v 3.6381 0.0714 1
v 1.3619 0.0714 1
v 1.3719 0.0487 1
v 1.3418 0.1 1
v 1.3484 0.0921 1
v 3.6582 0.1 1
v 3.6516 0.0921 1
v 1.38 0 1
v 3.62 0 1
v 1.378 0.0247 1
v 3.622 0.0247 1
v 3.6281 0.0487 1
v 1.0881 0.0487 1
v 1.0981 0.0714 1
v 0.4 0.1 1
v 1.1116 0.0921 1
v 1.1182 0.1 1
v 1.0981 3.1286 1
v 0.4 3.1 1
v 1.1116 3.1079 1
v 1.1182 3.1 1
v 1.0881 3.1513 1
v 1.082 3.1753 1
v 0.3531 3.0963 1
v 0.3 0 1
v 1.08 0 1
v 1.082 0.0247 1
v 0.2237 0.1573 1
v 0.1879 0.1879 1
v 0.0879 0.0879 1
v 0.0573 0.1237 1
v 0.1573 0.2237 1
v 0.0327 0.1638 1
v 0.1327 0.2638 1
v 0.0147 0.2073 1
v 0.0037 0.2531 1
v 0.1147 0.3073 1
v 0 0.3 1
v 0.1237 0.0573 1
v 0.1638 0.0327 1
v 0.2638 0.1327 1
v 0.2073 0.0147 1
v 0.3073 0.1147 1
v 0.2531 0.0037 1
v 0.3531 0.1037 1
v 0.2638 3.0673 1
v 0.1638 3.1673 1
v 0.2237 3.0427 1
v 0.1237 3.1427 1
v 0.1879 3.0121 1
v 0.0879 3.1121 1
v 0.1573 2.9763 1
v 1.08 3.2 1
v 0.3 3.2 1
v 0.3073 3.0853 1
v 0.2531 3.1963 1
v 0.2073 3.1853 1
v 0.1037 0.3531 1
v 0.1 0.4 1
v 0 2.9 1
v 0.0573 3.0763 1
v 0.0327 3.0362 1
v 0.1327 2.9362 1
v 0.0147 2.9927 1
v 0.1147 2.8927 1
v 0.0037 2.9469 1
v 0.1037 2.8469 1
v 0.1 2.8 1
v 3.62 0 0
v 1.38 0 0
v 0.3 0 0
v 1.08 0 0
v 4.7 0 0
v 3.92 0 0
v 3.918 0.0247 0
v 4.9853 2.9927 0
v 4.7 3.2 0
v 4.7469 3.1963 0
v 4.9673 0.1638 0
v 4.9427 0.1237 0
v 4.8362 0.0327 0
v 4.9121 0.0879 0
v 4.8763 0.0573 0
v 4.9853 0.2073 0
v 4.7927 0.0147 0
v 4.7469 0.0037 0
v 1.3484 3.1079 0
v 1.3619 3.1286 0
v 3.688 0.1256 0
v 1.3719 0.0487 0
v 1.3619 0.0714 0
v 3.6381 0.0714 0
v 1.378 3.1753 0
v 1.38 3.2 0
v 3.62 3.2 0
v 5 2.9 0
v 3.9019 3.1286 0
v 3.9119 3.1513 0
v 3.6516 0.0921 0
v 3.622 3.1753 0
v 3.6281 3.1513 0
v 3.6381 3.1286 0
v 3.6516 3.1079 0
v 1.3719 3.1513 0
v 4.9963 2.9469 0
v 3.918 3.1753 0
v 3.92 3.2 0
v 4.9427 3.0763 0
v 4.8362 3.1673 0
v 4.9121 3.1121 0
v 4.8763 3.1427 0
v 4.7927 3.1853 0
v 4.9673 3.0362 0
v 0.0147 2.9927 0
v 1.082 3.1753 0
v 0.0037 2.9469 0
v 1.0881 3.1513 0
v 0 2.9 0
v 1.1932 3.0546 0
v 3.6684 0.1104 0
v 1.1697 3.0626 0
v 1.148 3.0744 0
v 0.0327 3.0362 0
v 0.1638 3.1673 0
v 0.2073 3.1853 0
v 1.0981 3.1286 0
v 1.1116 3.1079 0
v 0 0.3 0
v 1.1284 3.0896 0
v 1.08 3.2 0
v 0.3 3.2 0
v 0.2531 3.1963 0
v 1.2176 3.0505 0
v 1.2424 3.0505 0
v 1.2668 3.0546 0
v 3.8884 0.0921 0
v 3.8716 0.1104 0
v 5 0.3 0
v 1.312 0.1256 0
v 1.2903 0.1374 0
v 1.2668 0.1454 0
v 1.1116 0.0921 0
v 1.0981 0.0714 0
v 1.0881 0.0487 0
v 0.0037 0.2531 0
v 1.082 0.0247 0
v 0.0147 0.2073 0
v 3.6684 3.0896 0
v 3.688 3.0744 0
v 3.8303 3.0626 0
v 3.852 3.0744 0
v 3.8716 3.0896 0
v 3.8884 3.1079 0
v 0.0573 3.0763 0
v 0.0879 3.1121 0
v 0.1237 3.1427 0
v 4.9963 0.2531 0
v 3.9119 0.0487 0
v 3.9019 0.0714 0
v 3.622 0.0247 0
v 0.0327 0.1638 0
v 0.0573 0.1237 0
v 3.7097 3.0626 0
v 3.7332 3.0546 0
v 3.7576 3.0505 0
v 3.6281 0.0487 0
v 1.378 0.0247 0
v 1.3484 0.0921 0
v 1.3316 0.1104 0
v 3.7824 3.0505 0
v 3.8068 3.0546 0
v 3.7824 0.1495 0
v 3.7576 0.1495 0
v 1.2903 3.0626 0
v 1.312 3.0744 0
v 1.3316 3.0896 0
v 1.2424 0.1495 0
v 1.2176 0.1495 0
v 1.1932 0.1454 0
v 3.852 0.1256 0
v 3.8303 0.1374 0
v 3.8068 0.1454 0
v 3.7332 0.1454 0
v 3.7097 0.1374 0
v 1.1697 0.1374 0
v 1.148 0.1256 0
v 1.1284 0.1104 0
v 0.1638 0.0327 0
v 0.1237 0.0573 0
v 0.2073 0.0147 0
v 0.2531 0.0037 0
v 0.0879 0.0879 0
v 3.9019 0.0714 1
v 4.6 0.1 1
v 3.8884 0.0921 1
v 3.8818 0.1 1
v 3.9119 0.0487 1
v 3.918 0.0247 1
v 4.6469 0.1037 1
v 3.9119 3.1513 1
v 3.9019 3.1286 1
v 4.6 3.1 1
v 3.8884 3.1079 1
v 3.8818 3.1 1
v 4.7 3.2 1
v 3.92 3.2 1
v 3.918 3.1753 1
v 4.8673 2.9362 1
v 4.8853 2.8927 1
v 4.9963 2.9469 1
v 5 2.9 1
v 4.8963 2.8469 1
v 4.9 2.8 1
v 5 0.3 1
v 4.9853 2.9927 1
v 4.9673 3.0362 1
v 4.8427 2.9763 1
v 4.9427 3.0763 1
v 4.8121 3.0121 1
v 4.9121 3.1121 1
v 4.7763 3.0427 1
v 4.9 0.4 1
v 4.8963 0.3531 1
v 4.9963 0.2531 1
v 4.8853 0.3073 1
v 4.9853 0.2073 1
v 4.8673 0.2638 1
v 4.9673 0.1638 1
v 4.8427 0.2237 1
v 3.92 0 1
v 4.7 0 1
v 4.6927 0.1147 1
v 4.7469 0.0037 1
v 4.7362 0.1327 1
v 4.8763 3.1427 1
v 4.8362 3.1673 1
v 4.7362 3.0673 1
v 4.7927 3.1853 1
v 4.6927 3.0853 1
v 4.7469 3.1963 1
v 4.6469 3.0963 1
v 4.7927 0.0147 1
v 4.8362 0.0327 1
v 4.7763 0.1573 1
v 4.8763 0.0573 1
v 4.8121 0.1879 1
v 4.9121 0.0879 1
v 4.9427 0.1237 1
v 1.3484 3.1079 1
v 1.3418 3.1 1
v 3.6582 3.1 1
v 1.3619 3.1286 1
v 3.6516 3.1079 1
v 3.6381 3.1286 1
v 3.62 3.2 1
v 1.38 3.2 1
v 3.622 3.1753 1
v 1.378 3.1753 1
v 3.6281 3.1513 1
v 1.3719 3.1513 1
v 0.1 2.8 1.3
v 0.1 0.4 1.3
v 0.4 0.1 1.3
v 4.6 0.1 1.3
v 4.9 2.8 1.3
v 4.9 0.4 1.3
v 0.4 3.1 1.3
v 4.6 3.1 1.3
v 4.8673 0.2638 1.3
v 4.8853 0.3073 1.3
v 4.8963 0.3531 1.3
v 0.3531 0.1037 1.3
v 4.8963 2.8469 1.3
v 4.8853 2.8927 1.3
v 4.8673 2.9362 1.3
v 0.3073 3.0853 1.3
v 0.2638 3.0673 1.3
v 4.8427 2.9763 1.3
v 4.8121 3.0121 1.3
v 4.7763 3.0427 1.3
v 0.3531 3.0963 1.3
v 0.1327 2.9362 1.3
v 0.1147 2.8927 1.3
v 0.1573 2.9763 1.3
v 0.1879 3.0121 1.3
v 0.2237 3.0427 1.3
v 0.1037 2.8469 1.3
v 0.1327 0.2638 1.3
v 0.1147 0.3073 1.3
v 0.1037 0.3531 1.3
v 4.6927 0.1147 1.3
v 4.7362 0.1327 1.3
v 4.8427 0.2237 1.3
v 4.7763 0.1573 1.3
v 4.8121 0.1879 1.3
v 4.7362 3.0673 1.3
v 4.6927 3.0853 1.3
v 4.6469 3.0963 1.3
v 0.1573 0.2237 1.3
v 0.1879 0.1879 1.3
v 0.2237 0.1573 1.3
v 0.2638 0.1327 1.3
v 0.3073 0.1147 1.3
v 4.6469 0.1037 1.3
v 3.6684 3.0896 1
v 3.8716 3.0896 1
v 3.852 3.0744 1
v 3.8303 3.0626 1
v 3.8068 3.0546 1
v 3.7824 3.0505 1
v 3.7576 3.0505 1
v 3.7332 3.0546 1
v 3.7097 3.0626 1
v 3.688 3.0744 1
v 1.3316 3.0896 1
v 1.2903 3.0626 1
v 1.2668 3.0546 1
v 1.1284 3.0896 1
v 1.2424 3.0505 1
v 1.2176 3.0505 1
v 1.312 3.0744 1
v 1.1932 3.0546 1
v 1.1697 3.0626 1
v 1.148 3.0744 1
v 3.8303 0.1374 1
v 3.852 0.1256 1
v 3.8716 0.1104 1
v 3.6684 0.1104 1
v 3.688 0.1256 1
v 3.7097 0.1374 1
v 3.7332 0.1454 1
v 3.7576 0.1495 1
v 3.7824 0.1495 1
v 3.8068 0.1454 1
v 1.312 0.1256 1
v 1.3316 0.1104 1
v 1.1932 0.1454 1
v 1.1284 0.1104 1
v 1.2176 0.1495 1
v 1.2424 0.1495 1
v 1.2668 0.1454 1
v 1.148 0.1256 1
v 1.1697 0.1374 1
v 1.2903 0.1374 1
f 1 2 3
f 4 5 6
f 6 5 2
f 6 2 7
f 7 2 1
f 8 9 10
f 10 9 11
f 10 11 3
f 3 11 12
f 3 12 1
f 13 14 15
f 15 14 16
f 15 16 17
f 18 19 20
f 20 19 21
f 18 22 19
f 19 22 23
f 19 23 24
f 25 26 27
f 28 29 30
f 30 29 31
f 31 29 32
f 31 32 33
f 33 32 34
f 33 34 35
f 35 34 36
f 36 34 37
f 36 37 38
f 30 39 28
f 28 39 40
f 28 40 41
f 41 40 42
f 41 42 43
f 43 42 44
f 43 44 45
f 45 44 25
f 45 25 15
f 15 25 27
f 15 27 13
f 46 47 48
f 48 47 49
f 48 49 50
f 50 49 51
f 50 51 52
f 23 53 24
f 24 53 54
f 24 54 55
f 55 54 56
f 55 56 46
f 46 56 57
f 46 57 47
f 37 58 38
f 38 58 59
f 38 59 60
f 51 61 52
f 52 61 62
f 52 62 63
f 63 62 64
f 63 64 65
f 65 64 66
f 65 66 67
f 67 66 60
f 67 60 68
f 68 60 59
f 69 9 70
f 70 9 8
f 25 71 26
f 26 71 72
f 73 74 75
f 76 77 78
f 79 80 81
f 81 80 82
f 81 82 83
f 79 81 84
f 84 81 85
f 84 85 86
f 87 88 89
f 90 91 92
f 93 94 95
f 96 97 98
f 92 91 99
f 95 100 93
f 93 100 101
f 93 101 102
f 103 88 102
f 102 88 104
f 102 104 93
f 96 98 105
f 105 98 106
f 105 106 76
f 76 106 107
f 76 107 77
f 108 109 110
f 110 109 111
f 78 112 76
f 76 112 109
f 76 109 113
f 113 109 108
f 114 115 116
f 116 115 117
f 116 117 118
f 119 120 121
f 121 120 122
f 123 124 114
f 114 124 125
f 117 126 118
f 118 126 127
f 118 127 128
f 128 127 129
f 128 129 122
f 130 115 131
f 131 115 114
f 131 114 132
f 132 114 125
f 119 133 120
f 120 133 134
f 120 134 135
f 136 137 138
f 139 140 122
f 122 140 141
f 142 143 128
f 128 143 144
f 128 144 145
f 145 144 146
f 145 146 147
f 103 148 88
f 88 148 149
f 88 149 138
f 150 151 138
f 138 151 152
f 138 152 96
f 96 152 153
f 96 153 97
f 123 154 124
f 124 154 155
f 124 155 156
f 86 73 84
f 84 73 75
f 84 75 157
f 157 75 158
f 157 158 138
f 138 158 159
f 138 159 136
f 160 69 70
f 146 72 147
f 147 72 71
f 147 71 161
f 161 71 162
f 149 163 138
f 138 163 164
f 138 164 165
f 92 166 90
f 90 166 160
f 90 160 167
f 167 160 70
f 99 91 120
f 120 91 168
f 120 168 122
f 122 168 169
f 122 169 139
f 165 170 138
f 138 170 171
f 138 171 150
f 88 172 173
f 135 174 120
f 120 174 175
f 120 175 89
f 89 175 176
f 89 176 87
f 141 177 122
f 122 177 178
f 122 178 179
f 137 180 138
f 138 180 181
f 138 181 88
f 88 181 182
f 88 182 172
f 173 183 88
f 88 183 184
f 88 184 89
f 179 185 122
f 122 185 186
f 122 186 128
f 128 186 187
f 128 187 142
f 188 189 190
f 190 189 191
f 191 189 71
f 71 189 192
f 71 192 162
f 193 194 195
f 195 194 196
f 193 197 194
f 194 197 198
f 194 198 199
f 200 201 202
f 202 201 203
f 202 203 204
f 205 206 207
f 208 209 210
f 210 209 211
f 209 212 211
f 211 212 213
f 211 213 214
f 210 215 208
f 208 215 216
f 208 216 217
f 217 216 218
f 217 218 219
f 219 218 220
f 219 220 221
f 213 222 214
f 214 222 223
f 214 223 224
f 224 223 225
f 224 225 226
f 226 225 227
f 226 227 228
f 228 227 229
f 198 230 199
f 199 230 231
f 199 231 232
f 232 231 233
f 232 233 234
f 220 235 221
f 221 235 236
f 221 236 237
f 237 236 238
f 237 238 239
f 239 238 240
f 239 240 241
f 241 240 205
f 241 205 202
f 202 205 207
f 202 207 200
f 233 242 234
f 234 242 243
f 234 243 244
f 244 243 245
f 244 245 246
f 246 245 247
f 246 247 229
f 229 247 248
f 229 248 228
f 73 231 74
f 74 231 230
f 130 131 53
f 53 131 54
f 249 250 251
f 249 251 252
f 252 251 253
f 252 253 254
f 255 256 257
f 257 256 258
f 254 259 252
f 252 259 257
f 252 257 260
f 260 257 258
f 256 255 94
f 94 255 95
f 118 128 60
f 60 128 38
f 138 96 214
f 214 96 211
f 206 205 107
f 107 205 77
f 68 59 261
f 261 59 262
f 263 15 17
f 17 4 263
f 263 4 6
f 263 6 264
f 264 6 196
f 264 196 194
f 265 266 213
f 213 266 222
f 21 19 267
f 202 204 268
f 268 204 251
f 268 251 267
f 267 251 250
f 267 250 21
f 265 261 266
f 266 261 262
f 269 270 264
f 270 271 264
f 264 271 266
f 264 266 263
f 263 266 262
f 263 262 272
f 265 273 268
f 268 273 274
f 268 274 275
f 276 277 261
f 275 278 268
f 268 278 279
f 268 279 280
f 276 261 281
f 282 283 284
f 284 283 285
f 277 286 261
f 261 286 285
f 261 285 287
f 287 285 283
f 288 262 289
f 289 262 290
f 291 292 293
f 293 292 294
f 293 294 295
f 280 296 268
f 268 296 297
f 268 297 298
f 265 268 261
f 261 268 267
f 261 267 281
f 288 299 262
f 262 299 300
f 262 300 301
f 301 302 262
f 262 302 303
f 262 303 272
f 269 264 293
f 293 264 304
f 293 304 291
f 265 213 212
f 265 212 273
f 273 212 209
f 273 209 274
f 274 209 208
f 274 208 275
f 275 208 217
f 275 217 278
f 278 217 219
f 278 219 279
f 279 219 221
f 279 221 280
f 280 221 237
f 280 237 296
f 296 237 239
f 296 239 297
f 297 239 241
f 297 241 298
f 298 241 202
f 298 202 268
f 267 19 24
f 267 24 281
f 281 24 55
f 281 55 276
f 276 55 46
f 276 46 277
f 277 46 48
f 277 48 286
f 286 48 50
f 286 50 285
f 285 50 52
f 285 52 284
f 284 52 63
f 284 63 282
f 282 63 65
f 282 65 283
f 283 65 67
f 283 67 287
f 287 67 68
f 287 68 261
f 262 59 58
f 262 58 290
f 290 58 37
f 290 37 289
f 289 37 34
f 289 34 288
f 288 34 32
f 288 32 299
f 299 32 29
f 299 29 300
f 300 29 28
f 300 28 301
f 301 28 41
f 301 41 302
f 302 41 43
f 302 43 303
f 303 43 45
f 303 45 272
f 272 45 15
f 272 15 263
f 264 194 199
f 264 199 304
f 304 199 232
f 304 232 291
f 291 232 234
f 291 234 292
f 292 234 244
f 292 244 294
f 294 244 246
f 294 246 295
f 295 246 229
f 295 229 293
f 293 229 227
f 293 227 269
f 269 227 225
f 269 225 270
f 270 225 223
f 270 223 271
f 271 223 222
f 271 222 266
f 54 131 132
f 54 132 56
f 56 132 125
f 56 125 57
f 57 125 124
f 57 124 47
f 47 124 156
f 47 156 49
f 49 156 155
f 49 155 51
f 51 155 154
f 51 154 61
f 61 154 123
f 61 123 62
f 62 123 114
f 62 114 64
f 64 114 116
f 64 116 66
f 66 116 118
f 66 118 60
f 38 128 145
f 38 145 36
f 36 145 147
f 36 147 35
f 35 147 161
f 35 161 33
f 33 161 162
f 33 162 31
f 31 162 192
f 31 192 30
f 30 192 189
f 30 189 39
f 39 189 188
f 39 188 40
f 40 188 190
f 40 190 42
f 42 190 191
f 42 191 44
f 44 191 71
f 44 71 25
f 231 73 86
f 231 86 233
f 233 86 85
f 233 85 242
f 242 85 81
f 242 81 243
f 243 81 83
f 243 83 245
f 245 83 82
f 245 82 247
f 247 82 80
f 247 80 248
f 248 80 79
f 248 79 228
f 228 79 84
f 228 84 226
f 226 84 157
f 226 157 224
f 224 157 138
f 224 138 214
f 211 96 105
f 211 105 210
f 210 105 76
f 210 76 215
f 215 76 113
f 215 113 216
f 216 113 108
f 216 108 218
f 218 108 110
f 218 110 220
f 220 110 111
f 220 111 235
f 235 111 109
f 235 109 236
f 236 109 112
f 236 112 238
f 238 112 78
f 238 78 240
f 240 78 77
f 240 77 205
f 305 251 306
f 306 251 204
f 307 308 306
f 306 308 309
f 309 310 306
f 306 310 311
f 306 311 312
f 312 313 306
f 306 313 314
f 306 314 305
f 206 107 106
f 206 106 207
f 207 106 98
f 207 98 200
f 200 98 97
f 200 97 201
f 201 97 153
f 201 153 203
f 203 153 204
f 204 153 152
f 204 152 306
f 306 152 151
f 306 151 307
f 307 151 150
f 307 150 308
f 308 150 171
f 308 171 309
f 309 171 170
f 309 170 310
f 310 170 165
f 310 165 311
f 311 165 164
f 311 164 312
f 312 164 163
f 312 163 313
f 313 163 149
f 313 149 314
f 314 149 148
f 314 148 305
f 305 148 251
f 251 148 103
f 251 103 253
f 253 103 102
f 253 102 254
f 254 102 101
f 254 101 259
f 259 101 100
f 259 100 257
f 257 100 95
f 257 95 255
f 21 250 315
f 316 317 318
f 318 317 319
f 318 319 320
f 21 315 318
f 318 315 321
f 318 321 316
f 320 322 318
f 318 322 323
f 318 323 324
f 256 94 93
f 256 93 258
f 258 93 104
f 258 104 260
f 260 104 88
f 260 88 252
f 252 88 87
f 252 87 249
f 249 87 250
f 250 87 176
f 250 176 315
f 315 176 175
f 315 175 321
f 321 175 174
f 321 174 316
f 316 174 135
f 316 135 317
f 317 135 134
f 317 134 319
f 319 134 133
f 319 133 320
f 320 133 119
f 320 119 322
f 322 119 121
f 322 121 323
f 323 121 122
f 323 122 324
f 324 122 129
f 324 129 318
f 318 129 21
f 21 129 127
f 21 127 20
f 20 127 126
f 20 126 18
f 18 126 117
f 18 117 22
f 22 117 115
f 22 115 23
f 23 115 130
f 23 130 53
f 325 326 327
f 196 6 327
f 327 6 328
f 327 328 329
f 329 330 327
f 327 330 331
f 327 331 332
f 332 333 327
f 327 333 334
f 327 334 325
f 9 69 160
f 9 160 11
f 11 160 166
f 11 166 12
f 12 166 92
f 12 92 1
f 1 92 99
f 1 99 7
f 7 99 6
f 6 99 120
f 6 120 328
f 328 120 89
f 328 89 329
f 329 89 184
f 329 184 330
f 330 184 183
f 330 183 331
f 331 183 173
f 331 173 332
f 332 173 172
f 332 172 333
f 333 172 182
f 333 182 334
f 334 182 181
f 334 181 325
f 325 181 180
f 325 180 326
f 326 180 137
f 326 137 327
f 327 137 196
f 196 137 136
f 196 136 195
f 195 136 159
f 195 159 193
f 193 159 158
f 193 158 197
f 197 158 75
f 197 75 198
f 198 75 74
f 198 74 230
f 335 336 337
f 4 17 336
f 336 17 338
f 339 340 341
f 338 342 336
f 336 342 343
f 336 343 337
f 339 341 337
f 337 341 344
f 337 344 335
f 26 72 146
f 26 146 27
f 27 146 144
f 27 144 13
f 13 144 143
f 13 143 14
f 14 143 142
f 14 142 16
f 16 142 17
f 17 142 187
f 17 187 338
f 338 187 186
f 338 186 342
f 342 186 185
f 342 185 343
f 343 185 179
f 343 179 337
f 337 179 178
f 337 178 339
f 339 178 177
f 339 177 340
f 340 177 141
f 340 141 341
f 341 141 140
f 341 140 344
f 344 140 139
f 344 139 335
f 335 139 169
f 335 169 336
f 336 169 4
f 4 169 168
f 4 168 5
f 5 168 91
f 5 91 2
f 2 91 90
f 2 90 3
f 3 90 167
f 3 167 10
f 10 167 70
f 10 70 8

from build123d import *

# Parameters (mm, degrees)
SKETCH1_W            = 5
SKETCH1_H            = 3.2
BOSS_EXTRUDE1_DEPTH  = 1
SKETCH2_W            = 4.8
SKETCH2_H            = 3
BOSS_EXTRUDE2_DEPTH  = 0.3
FILLET1_R            = 0.3
FILLET2_R            = 0.3
CUT_EXTRUDE1_DEPTH   = 1
LPATTERN1_COUNT      = 2
LPATTERN1_PITCH      = 2.54
MIRROR1_COPY_1_DEPTH = 1


with BuildPart() as part:
    # Sketch1 → Boss-Extrude1 (new body)
    with BuildSketch(Plane.XY):
        with Locations((2.5, 1.6)):
            Rectangle(SKETCH1_W, SKETCH1_H)
    extrude(amount=BOSS_EXTRUDE1_DEPTH)

    # Sketch2 → Boss-Extrude2 (add)
    with BuildSketch(Plane.XY.offset(1)):
        with Locations((2.5, 1.6)):
            Rectangle(SKETCH2_W, SKETCH2_H)
    extrude(amount=BOSS_EXTRUDE2_DEPTH)

    # Fillet1
    fillet1_edges = [part.edges().sort_by_distance(p)[0] for p in [
        (0.1, 3.1, 1.15),
        (0.1, 0.1, 1.15),
        (4.9, 0.1, 1.15),
        (4.9, 3.1, 1.15),
    ]]
    fillet(fillet1_edges, radius=FILLET1_R)

    # Fillet2
    fillet2_edges = [part.edges().sort_by_distance(p)[0] for p in [
        (0, 3.2, 0.5),
        (5, 3.2, 0.5),
        (5, 0, 0.5),
        (0, 0, 0.5),
    ]]
    fillet(fillet2_edges, radius=FILLET2_R)

    # Sketch3 → Cut-Extrude1 (cut)
    with BuildSketch(Plane(origin=(0, 0, 0), x_dir=(-1, 0, 0), z_dir=(0, 0, -1))):
        with BuildLine():
            Line((-3.92, 3.2), (-3.62, 3.2))
            ThreePointArc((-3.62, 3.2), (-3.77, 3.05), (-3.92, 3.2))
        make_face()
    cut_extrude1 = extrude(amount=-CUT_EXTRUDE1_DEPTH, mode=Mode.SUBTRACT)

    # LPattern1: Cut-Extrude1 ×2
    with Locations(*[(-i * LPATTERN1_PITCH, 0, 0) for i in range(1, LPATTERN1_COUNT)]):
        add(cut_extrude1, mode=Mode.SUBTRACT)

    # Mirror1: Cut-Extrude1 across plane
    add(cut_extrude1.mirror(Plane.ZX.offset(1.6)), mode=Mode.SUBTRACT)

    # Mirror1 copy 1 sketch → Mirror1 copy 1 (cut)
    with BuildSketch(Plane(origin=(-2.54, 3.2, 0), x_dir=(-1, 0, 0), z_dir=(0, 0, -1))):
        with BuildLine():
            Line((-3.92, -3.2), (-3.62, -3.2))
            ThreePointArc((-3.62, -3.2), (-3.77, -3.05), (-3.92, -3.2))
        make_face()
    extrude(amount=-MIRROR1_COPY_1_DEPTH, mode=Mode.SUBTRACT)


solid = part.part
